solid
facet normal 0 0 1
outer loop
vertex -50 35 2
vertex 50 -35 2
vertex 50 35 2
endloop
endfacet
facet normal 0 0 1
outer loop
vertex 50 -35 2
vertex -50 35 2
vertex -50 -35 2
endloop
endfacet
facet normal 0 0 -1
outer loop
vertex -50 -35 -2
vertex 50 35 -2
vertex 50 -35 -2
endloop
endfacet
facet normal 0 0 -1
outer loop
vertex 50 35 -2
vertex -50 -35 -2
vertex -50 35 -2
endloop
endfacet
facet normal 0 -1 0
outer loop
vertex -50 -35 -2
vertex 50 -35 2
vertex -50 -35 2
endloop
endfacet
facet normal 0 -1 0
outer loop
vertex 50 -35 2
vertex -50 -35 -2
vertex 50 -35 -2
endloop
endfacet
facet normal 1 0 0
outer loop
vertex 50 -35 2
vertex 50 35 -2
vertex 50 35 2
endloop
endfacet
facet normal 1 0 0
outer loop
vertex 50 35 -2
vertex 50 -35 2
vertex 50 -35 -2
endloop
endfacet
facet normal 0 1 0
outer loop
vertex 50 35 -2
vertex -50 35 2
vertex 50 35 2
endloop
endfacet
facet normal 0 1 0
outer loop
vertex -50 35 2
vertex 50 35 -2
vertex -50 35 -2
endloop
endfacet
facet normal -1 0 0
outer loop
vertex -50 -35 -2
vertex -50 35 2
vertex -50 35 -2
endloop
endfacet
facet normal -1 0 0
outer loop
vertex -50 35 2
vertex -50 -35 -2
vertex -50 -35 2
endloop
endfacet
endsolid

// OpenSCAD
// ========================================
// a 100 x 70 x 4 mm plate
// NeuroCAD canonical IR; dimensions are millimetres
// ========================================
$fn = 48;

cube(size=[100, 70, 4], center=true);
